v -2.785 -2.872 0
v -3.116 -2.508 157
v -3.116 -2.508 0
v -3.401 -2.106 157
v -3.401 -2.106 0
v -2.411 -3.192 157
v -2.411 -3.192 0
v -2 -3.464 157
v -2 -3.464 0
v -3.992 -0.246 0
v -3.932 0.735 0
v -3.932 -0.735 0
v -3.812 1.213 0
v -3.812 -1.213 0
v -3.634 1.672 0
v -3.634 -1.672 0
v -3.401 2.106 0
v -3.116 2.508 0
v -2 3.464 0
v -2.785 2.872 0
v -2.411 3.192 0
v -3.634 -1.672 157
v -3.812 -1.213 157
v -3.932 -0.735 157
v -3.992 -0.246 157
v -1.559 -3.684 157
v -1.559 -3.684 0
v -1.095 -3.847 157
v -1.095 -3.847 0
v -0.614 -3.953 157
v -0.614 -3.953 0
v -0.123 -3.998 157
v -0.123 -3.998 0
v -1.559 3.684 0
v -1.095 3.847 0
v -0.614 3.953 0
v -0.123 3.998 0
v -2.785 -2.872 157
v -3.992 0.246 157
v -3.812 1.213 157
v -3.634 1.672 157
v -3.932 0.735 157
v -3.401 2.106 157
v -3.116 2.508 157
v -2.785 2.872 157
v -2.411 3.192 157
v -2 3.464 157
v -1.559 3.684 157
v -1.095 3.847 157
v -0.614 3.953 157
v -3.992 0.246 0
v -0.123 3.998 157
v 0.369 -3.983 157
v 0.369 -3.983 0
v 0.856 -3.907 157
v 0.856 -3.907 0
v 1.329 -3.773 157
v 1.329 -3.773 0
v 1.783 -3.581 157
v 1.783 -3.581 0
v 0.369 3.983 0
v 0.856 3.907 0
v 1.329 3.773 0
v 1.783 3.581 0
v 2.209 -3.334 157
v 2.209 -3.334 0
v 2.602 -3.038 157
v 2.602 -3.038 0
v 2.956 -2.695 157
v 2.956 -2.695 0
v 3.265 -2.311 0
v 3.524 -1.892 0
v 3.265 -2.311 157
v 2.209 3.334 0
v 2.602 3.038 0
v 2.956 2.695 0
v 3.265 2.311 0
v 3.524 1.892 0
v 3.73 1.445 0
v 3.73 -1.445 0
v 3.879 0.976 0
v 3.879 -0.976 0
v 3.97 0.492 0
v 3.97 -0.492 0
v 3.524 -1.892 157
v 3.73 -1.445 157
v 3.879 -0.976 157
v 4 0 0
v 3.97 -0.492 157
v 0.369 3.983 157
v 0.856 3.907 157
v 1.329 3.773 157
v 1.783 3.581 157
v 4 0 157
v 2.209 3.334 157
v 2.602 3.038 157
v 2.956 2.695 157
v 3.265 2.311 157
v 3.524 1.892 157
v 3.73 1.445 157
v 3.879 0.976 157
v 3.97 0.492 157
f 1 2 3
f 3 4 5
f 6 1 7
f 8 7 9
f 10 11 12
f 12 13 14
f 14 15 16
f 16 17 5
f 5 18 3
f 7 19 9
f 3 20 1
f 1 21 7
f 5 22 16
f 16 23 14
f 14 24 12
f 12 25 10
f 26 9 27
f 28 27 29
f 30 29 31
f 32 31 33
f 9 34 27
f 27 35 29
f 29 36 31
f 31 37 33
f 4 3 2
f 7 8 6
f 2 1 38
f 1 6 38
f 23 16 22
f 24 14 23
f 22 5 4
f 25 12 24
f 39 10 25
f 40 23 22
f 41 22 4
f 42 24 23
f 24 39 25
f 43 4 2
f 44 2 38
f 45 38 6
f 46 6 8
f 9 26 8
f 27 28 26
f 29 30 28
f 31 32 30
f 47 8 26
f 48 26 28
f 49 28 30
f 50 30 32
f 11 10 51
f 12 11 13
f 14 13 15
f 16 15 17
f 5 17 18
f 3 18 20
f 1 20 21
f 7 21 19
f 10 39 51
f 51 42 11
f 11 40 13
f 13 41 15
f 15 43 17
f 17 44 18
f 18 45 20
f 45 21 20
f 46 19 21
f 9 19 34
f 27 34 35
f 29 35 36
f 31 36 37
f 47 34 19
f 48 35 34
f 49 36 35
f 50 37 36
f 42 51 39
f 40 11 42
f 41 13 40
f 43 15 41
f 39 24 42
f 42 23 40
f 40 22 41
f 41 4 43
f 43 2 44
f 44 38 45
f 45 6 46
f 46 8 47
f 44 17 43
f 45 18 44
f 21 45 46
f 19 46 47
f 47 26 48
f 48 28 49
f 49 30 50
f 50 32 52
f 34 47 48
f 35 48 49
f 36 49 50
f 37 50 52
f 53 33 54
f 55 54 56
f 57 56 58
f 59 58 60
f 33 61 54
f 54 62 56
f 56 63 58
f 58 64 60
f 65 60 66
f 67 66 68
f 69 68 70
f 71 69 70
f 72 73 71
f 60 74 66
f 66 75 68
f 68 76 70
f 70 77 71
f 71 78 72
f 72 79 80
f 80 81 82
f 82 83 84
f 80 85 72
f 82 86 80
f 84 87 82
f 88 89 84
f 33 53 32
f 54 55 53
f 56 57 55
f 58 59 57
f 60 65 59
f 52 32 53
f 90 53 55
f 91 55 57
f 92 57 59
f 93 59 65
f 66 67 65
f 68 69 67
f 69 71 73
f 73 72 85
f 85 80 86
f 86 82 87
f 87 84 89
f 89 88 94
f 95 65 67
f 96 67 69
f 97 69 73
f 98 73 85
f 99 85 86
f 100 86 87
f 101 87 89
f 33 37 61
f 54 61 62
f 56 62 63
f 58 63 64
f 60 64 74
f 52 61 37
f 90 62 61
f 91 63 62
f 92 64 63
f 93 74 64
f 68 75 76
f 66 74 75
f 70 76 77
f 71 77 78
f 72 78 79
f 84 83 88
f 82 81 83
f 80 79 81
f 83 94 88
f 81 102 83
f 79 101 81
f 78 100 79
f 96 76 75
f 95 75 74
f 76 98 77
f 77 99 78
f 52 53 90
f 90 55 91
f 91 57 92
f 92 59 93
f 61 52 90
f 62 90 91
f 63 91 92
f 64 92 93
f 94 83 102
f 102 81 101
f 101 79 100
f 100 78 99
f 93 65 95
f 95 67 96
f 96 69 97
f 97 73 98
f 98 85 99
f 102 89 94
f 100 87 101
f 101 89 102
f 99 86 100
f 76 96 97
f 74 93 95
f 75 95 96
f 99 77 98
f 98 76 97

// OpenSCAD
// file: ../lib/lib.scad
// Shared helpers. Include AFTER params.scad (needs TOL, M3_* etc.).
$fa = 4; $fs = 0.5;

module rrect(size, r) {            // 2D rounded rectangle, centred
    r2 = min(r, min(size[0], size[1]) / 2 - 0.001);
    offset(r = r2) square([size[0] - 2 * r2, size[1] - 2 * r2], center = true);
}
module rbox(size, r, center_xy = true) {   // box with rounded vertical edges
    translate(center_xy ? [0, 0, 0] : [size[0] / 2, size[1] / 2, 0])
        linear_extrude(size[2]) rrect([size[0], size[1]], r);
}
module rbox_at(x0, x1, y0, y1, z0, z1, r = 0.01) {
    translate([(x0 + x1) / 2, (y0 + y1) / 2, z0]) rbox([x1 - x0, y1 - y0, z1 - z0], r);
}
module box_at(x0, x1, y0, y1, z0, z1) { translate([x0, y0, z0]) cube([x1 - x0, y1 - y0, z1 - z0]); }

module ring(ro, ri, h) { difference() { cylinder(r = ro, h = h); translate([0, 0, -1]) cylinder(r = ri, h = h + 2); } }
module ring_sector(ro, ri, h, a0, a1) {
    intersection() {
        ring(ro, ri, h);
        linear_extrude(h) polygon(concat([[0, 0]], [for (a = [a0 : (a1 - a0) / 24 : a1]) 2 * ro * [cos(a), sin(a)]]));
    }
}
// teardrop hole along an axis lying horizontal (axis = Y after rotation), printable w/o support
module teardrop2d(d) { union() { circle(d = d); rotate(45) square(d / 2); } }
// vertical heat-set insert hole, opening at z=0 going +z (depth l)
module insert_hole(l = M3_INSERT_L) { translate([0, 0, -EPS]) cylinder(d = M3_INSERT_D, h = l + EPS); }
module m3_clear(l) { translate([0, 0, -EPS]) cylinder(d = M3_CLEAR, h = l + 2 * EPS); }
module m3_csk(l) {  // countersunk clearance from z=0 upward, head at z=0 side
    translate([0, 0, -EPS]) { cylinder(d = M3_CLEAR, h = l + 2 * EPS); cylinder(d1 = 6.4, d2 = M3_CLEAR, h = 1.7); }
}
module card2d() { rrect([CARD_L, CARD_W], CARD_R); }
module card_at(cy, z) { translate([0, cy, z]) linear_extrude(CARD_T) card2d(); }

// ---- gears ----
function _inv(a) = tan(a) - a * PI_ / 180;           // involute function, a in deg
function _invpt(rb, r, ang0, s) = let(al = acos(rb / r), th = ang0 - s * (_inv(al) * 180 / PI_)) [r * cos(th), r * sin(th)];
module involute_gear2d(m, z, pa = 20, clearance = 0.05) {
    rp = m * z / 2; rb = rp * cos(pa); ra = rp + m - clearance; rf = rp - 1.25 * m;
    half = 90 / z + _inv(pa) * 180 / PI_;            // tooth half-angle at base (deg)
    n = 8;
    rs = [for (i = [0 : n]) max(rb, rf) + (ra - max(rb, rf)) * i / n];
    union() {
        circle(r = rf, $fn = z * 4);
        for (k = [0 : z - 1]) rotate(k * 360 / z) polygon(concat(
            [[rf * cos(-half), rf * sin(-half)]],
            [for (r = rs) let(p = _invpt(rb, r, half, 1)) [p[0], -p[1]]],
            [for (i = [n : -1 : 0]) _invpt(rb, rs[i], half, 1)],
            [[rf * cos(half), rf * sin(half)]]));
    }
}
// straight gear rack (2D in XY: teeth along +x, pointing -y, pitch line at y=0)
module gear_rack2d(m, len, back = 3) {
    p = PI_ * m; ad = m; de = 1.25 * m; t = tan(20);
    n = ceil(len / p) + 1;
    intersection() {
        union() {
            translate([0, de]) square([len, back]);
            for (i = [0 : n]) translate([i * p - p / 4, 0]) polygon([
                [-(p / 4 + de * t), de + 0.01], [p / 4 + de * t + 0.01, de + 0.01],
                [p / 4 - ad * t, -ad], [-(p / 4 - ad * t), -ad] ]);
        }
        translate([0, -ad - 1]) square([len, ad + de + back + 2]);
    }
}
// GT2 belt-tooth profile ring (teeth outward), 2D
module gt2_ring2d(n, r_land, ri) {
    union() {
        difference() { circle(r = r_land + 0.01, $fn = n * 2); circle(r = ri, $fn = n * 2); }
        for (k = [0 : n - 1]) rotate(k * 360 / n)
            translate([r_land, 0]) hull() { translate([-0.2, 0]) square([0.2, 1.0], center = true); translate([0.25, 0]) circle(r = 0.5, $fn = 12); }
    }
}
// main file
// Vendor model: 8 mm hardened steel guide rod, cut to ROD_L. Local: z 0..ROD_L.
include <../params.scad>
include <../lib/lib.scad>
module vendor_rod_8mm(l = ROD_L) color([0.78,0.8,0.84]) cylinder(d = ROD_D, h = l);

vendor_rod_8mm();
